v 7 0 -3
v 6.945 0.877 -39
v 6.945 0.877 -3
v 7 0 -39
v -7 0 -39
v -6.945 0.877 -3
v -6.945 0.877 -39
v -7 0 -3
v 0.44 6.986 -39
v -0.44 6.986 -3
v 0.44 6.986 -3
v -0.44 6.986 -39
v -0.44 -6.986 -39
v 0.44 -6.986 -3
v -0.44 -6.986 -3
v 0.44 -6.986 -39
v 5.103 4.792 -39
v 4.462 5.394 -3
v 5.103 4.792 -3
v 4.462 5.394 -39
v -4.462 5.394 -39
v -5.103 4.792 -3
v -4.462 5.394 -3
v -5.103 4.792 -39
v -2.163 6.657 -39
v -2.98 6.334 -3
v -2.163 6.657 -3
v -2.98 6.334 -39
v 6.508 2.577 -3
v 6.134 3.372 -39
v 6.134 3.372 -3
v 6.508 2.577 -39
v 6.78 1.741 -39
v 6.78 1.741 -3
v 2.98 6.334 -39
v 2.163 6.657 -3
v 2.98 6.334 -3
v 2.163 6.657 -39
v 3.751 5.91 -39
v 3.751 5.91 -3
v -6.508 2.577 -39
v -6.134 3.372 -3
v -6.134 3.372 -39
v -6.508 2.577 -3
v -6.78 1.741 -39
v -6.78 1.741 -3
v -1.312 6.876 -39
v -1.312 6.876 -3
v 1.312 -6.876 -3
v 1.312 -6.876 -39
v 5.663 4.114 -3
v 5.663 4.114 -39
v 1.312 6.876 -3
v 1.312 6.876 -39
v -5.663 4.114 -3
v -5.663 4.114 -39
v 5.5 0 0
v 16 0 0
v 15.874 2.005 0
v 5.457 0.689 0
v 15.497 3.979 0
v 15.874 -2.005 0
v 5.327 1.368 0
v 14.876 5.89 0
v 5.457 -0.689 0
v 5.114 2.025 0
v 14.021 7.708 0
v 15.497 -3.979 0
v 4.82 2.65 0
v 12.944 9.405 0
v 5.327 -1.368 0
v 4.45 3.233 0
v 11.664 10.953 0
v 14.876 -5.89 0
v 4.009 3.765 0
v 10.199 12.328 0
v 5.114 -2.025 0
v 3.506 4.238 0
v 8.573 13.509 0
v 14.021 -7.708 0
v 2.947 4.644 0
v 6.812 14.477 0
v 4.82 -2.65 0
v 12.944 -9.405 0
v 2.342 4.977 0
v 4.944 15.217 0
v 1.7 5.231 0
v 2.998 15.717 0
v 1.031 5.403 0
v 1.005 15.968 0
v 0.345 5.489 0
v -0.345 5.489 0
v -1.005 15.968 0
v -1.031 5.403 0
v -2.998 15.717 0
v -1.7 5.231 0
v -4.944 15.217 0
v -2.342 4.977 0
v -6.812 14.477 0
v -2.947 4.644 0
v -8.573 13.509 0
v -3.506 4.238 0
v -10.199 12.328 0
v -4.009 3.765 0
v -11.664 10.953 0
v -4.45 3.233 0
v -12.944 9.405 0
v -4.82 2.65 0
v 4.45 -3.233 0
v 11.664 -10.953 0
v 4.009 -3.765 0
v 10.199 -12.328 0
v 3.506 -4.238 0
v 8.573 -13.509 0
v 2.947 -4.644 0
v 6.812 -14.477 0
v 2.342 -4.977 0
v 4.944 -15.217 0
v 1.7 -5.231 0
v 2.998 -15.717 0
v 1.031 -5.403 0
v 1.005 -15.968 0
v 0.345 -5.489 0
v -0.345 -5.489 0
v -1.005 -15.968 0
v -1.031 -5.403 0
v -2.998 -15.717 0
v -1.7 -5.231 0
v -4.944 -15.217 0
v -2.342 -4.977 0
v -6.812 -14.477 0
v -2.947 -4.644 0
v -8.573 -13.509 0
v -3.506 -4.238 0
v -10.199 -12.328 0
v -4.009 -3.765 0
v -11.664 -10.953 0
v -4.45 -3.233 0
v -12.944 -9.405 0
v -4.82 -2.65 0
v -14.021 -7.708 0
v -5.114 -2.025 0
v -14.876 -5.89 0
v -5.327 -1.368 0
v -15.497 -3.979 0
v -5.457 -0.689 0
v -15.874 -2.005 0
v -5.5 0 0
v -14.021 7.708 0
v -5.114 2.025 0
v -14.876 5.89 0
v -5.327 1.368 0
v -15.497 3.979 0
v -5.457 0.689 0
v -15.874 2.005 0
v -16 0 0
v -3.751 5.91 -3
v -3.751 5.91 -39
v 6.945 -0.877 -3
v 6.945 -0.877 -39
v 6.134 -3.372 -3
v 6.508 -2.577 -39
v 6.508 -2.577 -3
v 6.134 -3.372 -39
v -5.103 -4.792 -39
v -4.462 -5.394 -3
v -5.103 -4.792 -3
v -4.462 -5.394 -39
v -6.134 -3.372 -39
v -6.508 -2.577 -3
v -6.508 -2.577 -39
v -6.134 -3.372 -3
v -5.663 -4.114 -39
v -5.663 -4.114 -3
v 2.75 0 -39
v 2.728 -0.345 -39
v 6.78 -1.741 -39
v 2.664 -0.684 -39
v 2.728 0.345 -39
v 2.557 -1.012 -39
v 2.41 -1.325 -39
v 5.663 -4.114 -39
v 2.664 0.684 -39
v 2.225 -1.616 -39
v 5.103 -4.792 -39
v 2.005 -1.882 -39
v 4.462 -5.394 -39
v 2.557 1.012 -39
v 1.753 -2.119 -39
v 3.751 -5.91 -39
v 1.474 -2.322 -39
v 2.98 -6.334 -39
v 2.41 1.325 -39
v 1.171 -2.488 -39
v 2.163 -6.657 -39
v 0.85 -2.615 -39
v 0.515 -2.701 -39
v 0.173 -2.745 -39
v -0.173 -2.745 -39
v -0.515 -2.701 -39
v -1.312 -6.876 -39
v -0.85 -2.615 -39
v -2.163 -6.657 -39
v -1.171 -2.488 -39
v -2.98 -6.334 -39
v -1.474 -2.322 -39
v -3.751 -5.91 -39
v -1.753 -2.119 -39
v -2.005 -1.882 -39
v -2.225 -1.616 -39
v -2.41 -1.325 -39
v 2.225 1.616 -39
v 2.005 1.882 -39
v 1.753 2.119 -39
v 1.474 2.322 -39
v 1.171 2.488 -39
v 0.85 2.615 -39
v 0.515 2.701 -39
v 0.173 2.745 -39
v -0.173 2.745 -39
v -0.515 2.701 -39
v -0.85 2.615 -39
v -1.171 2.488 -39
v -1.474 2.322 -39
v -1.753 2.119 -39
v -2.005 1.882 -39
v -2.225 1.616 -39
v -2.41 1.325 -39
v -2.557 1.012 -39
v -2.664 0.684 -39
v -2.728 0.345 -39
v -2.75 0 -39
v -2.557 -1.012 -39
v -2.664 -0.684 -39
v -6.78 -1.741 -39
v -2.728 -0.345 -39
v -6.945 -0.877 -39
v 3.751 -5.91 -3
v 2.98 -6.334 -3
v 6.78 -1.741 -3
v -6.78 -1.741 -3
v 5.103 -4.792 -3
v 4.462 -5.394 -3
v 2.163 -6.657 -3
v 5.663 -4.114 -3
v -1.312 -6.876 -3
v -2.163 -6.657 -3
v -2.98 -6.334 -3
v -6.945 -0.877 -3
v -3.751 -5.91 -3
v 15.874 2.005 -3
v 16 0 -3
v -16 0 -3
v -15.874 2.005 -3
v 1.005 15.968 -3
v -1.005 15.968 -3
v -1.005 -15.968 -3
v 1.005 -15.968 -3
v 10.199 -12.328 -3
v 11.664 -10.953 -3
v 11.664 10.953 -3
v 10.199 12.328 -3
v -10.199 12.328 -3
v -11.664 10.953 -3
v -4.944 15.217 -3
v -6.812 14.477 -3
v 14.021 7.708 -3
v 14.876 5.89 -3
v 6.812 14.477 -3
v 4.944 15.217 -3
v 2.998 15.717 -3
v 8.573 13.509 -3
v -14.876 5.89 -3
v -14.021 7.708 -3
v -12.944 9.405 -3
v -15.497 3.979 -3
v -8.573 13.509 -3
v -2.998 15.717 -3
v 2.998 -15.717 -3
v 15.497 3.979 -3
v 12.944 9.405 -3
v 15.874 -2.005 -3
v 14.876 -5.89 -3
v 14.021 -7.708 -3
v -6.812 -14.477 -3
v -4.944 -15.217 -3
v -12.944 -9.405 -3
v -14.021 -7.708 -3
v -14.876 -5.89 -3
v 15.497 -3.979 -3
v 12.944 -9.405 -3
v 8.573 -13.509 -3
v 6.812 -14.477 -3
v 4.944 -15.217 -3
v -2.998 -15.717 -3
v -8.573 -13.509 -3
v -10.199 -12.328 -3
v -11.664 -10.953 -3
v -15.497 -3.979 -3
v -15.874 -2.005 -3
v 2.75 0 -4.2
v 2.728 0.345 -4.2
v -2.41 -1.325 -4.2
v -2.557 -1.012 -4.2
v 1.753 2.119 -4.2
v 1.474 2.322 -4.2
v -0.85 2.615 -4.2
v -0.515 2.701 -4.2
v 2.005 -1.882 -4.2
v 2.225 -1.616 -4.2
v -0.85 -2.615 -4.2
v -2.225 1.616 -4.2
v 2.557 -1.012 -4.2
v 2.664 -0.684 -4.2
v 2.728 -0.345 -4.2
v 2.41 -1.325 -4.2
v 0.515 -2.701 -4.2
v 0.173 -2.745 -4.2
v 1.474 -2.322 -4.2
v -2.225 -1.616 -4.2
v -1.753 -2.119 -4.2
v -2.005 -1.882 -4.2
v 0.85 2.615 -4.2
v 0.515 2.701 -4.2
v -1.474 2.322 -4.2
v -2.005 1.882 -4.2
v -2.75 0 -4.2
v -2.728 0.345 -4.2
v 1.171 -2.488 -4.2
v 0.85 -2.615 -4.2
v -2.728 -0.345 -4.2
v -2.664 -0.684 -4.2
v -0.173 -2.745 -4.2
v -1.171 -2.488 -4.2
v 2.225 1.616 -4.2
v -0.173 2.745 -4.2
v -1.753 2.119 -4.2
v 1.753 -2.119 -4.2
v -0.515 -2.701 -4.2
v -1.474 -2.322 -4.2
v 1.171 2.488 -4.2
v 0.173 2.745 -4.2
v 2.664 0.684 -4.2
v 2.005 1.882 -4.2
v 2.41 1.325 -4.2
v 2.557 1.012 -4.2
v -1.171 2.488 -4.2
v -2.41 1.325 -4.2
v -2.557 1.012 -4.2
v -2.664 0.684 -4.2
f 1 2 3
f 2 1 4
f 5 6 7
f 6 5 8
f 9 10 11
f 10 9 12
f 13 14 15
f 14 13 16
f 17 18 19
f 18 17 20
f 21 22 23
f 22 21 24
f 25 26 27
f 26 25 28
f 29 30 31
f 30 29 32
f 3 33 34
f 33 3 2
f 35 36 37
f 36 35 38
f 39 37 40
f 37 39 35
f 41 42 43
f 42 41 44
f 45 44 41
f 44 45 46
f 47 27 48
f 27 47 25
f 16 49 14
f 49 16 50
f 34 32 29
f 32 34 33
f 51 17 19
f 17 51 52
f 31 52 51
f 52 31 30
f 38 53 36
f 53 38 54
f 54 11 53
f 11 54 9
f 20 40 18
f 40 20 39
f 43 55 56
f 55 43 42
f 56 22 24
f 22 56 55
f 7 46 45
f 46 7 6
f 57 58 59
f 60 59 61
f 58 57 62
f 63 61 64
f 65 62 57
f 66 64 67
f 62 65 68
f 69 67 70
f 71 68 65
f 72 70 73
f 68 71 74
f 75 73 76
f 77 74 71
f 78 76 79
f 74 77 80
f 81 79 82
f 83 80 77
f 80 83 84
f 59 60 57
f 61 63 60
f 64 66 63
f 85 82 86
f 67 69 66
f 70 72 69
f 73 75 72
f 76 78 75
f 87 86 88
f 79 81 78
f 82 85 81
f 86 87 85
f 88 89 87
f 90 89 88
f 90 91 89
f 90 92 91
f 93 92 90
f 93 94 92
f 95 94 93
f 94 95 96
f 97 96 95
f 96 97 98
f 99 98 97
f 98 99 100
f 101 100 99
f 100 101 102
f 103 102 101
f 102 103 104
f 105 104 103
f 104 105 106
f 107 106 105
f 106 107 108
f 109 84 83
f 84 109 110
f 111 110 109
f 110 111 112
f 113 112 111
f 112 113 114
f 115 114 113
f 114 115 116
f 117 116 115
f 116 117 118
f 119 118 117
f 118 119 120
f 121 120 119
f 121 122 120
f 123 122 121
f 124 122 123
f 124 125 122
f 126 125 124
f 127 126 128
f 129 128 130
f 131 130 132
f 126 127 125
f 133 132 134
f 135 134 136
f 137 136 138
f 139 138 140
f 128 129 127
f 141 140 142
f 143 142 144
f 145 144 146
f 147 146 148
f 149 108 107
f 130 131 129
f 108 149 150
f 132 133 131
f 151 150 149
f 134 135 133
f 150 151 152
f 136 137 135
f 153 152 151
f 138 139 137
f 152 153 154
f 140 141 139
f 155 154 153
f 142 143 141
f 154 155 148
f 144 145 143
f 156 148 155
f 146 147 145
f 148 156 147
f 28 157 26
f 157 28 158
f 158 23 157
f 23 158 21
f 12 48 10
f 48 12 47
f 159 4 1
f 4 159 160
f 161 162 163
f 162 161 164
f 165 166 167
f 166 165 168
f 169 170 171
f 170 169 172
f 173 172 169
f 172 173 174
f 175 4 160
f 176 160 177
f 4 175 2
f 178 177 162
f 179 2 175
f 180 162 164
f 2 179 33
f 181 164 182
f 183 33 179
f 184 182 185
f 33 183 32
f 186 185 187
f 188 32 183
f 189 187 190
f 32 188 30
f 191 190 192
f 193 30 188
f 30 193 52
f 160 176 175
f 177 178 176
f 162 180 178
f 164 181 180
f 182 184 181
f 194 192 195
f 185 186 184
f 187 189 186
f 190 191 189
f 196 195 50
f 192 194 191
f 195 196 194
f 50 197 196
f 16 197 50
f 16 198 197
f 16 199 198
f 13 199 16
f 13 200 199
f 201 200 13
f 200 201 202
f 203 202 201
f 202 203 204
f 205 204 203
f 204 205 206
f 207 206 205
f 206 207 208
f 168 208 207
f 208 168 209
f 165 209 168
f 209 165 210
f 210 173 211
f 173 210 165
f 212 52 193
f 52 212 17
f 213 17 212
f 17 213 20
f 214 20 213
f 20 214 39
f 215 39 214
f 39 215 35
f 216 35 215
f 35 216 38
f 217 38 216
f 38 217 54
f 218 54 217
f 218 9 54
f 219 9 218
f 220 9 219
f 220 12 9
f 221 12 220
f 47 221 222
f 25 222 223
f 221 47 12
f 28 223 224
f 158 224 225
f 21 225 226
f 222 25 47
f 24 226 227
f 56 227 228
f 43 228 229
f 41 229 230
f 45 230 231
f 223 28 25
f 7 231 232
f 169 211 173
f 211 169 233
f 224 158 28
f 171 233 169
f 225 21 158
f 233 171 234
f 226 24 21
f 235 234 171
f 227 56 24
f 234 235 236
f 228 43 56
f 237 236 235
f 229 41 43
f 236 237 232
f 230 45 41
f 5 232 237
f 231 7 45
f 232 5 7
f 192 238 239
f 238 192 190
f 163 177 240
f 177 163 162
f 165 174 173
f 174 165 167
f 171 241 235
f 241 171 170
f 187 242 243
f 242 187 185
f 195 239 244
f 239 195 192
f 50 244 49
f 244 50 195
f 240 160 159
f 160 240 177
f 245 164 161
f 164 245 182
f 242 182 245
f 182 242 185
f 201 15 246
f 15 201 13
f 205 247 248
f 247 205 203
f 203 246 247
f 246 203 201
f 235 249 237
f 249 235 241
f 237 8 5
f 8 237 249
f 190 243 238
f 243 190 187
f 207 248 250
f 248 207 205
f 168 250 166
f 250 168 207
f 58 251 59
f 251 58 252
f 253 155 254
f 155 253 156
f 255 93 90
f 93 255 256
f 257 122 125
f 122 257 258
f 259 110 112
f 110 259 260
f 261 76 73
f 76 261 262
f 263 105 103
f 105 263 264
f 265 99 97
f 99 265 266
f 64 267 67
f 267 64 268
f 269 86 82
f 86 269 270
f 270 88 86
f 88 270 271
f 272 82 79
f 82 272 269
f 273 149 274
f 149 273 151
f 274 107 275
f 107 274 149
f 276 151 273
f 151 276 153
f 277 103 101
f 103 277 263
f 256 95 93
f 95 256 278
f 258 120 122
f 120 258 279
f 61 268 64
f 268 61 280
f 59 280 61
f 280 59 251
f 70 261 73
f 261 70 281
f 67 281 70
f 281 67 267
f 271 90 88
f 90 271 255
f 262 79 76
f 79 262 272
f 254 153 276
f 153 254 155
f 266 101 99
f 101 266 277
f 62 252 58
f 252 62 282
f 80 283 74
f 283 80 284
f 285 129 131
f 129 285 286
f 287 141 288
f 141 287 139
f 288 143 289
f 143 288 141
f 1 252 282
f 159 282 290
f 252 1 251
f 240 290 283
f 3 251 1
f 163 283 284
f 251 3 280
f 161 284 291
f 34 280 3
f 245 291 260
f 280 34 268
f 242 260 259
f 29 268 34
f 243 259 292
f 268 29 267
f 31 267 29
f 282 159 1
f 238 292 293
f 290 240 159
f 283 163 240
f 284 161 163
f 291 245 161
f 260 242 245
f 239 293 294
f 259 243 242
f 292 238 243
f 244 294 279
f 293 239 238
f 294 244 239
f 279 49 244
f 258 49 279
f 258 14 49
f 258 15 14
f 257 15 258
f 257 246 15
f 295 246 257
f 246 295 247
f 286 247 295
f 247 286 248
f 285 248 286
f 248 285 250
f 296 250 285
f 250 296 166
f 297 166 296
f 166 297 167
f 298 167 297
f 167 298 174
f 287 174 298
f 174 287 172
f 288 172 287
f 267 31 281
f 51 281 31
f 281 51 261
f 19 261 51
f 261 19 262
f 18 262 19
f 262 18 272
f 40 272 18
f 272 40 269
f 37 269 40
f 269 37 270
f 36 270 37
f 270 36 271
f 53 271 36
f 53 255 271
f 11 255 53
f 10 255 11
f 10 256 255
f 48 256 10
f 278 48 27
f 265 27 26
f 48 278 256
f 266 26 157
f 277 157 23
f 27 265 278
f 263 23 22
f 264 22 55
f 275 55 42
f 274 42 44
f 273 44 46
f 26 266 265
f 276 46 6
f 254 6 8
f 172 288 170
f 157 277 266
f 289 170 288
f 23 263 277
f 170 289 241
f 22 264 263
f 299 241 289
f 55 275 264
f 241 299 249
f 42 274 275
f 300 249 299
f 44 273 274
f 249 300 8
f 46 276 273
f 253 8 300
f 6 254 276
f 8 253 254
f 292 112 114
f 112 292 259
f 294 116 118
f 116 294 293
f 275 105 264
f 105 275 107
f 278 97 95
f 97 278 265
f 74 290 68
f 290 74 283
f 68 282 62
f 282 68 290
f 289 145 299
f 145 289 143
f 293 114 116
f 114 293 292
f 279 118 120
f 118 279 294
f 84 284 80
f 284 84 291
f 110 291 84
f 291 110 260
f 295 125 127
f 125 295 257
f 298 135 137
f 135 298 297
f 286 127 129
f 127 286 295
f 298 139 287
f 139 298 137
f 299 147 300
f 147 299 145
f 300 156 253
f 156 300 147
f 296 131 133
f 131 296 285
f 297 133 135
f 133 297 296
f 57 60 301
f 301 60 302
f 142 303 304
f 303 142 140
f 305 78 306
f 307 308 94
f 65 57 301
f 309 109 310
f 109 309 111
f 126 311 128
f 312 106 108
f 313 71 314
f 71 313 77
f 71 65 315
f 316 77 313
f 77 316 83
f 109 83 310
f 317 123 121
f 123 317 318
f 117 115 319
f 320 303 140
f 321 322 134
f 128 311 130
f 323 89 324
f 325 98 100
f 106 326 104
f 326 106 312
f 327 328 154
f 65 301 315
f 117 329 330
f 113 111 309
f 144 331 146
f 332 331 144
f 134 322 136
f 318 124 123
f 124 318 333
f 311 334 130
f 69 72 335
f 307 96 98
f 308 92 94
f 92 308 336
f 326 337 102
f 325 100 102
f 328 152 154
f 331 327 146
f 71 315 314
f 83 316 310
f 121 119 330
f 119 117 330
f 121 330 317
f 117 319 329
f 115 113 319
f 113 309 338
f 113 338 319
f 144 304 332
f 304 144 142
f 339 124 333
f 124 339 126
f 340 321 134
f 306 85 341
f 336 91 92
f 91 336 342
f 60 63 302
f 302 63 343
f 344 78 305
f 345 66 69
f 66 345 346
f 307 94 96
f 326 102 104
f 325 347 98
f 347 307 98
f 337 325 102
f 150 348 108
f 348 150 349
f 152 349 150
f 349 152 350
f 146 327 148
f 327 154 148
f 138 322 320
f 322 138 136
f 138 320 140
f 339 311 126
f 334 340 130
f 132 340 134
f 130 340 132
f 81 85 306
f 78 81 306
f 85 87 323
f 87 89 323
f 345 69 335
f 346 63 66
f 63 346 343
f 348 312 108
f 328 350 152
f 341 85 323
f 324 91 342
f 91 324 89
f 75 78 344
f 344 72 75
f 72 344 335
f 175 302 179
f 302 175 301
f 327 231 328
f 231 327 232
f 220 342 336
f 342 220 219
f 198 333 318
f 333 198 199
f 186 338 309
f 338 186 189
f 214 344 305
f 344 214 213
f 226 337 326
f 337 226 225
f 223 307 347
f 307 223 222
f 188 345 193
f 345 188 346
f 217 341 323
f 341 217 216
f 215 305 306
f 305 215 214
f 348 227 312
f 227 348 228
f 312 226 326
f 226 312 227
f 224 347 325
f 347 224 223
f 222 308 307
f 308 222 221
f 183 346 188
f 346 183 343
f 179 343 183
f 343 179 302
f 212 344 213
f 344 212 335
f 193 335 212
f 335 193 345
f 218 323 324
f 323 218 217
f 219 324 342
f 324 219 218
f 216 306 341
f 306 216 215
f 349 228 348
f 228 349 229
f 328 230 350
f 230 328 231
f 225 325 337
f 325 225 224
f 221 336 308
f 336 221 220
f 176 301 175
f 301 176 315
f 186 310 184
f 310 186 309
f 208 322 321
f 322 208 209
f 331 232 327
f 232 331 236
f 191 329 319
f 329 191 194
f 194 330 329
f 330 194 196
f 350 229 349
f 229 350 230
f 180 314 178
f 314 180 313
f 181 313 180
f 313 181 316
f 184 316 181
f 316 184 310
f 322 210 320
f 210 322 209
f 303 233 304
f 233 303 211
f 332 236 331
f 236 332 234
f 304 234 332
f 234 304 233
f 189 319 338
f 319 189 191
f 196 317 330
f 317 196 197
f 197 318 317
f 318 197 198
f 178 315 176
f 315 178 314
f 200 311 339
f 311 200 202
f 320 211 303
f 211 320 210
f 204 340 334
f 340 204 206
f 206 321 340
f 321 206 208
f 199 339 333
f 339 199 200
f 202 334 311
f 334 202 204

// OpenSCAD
$fn = 50;


difference() {
	union() {
		translate(v = [0, 0, -39.0000000000]) {
			cylinder(h = 39, r = 7.0000000000);
		}
		translate(v = [0, 0, -3.0000000000]) {
			cylinder(h = 3, r = 16.0000000000);
		}
	}
	union() {
		translate(v = [0, 0, 0]) {
			rotate(a = [0, 0, 0]) {
				difference() {
					union() {
						#translate(v = [0, 0, -39.0000000000]) {
							cylinder(h = 39, r = 2.2500000000);
						}
						#translate(v = [0, 0, -4.2000000000]) {
							cylinder(h = 4.2000000000, r = 7.0000000000, r1 = 2.7500000000, r2 = 5.5000000000);
						}
						#translate(v = [0, 0, -39.0000000000]) {
							cylinder(h = 39, r = 2.7500000000);
						}
						#translate(v = [0, 0, -39.0000000000]) {
							cylinder(h = 39, r = 2.2500000000);
						}
					}
					union();
				}
			}
		}
	}
}
